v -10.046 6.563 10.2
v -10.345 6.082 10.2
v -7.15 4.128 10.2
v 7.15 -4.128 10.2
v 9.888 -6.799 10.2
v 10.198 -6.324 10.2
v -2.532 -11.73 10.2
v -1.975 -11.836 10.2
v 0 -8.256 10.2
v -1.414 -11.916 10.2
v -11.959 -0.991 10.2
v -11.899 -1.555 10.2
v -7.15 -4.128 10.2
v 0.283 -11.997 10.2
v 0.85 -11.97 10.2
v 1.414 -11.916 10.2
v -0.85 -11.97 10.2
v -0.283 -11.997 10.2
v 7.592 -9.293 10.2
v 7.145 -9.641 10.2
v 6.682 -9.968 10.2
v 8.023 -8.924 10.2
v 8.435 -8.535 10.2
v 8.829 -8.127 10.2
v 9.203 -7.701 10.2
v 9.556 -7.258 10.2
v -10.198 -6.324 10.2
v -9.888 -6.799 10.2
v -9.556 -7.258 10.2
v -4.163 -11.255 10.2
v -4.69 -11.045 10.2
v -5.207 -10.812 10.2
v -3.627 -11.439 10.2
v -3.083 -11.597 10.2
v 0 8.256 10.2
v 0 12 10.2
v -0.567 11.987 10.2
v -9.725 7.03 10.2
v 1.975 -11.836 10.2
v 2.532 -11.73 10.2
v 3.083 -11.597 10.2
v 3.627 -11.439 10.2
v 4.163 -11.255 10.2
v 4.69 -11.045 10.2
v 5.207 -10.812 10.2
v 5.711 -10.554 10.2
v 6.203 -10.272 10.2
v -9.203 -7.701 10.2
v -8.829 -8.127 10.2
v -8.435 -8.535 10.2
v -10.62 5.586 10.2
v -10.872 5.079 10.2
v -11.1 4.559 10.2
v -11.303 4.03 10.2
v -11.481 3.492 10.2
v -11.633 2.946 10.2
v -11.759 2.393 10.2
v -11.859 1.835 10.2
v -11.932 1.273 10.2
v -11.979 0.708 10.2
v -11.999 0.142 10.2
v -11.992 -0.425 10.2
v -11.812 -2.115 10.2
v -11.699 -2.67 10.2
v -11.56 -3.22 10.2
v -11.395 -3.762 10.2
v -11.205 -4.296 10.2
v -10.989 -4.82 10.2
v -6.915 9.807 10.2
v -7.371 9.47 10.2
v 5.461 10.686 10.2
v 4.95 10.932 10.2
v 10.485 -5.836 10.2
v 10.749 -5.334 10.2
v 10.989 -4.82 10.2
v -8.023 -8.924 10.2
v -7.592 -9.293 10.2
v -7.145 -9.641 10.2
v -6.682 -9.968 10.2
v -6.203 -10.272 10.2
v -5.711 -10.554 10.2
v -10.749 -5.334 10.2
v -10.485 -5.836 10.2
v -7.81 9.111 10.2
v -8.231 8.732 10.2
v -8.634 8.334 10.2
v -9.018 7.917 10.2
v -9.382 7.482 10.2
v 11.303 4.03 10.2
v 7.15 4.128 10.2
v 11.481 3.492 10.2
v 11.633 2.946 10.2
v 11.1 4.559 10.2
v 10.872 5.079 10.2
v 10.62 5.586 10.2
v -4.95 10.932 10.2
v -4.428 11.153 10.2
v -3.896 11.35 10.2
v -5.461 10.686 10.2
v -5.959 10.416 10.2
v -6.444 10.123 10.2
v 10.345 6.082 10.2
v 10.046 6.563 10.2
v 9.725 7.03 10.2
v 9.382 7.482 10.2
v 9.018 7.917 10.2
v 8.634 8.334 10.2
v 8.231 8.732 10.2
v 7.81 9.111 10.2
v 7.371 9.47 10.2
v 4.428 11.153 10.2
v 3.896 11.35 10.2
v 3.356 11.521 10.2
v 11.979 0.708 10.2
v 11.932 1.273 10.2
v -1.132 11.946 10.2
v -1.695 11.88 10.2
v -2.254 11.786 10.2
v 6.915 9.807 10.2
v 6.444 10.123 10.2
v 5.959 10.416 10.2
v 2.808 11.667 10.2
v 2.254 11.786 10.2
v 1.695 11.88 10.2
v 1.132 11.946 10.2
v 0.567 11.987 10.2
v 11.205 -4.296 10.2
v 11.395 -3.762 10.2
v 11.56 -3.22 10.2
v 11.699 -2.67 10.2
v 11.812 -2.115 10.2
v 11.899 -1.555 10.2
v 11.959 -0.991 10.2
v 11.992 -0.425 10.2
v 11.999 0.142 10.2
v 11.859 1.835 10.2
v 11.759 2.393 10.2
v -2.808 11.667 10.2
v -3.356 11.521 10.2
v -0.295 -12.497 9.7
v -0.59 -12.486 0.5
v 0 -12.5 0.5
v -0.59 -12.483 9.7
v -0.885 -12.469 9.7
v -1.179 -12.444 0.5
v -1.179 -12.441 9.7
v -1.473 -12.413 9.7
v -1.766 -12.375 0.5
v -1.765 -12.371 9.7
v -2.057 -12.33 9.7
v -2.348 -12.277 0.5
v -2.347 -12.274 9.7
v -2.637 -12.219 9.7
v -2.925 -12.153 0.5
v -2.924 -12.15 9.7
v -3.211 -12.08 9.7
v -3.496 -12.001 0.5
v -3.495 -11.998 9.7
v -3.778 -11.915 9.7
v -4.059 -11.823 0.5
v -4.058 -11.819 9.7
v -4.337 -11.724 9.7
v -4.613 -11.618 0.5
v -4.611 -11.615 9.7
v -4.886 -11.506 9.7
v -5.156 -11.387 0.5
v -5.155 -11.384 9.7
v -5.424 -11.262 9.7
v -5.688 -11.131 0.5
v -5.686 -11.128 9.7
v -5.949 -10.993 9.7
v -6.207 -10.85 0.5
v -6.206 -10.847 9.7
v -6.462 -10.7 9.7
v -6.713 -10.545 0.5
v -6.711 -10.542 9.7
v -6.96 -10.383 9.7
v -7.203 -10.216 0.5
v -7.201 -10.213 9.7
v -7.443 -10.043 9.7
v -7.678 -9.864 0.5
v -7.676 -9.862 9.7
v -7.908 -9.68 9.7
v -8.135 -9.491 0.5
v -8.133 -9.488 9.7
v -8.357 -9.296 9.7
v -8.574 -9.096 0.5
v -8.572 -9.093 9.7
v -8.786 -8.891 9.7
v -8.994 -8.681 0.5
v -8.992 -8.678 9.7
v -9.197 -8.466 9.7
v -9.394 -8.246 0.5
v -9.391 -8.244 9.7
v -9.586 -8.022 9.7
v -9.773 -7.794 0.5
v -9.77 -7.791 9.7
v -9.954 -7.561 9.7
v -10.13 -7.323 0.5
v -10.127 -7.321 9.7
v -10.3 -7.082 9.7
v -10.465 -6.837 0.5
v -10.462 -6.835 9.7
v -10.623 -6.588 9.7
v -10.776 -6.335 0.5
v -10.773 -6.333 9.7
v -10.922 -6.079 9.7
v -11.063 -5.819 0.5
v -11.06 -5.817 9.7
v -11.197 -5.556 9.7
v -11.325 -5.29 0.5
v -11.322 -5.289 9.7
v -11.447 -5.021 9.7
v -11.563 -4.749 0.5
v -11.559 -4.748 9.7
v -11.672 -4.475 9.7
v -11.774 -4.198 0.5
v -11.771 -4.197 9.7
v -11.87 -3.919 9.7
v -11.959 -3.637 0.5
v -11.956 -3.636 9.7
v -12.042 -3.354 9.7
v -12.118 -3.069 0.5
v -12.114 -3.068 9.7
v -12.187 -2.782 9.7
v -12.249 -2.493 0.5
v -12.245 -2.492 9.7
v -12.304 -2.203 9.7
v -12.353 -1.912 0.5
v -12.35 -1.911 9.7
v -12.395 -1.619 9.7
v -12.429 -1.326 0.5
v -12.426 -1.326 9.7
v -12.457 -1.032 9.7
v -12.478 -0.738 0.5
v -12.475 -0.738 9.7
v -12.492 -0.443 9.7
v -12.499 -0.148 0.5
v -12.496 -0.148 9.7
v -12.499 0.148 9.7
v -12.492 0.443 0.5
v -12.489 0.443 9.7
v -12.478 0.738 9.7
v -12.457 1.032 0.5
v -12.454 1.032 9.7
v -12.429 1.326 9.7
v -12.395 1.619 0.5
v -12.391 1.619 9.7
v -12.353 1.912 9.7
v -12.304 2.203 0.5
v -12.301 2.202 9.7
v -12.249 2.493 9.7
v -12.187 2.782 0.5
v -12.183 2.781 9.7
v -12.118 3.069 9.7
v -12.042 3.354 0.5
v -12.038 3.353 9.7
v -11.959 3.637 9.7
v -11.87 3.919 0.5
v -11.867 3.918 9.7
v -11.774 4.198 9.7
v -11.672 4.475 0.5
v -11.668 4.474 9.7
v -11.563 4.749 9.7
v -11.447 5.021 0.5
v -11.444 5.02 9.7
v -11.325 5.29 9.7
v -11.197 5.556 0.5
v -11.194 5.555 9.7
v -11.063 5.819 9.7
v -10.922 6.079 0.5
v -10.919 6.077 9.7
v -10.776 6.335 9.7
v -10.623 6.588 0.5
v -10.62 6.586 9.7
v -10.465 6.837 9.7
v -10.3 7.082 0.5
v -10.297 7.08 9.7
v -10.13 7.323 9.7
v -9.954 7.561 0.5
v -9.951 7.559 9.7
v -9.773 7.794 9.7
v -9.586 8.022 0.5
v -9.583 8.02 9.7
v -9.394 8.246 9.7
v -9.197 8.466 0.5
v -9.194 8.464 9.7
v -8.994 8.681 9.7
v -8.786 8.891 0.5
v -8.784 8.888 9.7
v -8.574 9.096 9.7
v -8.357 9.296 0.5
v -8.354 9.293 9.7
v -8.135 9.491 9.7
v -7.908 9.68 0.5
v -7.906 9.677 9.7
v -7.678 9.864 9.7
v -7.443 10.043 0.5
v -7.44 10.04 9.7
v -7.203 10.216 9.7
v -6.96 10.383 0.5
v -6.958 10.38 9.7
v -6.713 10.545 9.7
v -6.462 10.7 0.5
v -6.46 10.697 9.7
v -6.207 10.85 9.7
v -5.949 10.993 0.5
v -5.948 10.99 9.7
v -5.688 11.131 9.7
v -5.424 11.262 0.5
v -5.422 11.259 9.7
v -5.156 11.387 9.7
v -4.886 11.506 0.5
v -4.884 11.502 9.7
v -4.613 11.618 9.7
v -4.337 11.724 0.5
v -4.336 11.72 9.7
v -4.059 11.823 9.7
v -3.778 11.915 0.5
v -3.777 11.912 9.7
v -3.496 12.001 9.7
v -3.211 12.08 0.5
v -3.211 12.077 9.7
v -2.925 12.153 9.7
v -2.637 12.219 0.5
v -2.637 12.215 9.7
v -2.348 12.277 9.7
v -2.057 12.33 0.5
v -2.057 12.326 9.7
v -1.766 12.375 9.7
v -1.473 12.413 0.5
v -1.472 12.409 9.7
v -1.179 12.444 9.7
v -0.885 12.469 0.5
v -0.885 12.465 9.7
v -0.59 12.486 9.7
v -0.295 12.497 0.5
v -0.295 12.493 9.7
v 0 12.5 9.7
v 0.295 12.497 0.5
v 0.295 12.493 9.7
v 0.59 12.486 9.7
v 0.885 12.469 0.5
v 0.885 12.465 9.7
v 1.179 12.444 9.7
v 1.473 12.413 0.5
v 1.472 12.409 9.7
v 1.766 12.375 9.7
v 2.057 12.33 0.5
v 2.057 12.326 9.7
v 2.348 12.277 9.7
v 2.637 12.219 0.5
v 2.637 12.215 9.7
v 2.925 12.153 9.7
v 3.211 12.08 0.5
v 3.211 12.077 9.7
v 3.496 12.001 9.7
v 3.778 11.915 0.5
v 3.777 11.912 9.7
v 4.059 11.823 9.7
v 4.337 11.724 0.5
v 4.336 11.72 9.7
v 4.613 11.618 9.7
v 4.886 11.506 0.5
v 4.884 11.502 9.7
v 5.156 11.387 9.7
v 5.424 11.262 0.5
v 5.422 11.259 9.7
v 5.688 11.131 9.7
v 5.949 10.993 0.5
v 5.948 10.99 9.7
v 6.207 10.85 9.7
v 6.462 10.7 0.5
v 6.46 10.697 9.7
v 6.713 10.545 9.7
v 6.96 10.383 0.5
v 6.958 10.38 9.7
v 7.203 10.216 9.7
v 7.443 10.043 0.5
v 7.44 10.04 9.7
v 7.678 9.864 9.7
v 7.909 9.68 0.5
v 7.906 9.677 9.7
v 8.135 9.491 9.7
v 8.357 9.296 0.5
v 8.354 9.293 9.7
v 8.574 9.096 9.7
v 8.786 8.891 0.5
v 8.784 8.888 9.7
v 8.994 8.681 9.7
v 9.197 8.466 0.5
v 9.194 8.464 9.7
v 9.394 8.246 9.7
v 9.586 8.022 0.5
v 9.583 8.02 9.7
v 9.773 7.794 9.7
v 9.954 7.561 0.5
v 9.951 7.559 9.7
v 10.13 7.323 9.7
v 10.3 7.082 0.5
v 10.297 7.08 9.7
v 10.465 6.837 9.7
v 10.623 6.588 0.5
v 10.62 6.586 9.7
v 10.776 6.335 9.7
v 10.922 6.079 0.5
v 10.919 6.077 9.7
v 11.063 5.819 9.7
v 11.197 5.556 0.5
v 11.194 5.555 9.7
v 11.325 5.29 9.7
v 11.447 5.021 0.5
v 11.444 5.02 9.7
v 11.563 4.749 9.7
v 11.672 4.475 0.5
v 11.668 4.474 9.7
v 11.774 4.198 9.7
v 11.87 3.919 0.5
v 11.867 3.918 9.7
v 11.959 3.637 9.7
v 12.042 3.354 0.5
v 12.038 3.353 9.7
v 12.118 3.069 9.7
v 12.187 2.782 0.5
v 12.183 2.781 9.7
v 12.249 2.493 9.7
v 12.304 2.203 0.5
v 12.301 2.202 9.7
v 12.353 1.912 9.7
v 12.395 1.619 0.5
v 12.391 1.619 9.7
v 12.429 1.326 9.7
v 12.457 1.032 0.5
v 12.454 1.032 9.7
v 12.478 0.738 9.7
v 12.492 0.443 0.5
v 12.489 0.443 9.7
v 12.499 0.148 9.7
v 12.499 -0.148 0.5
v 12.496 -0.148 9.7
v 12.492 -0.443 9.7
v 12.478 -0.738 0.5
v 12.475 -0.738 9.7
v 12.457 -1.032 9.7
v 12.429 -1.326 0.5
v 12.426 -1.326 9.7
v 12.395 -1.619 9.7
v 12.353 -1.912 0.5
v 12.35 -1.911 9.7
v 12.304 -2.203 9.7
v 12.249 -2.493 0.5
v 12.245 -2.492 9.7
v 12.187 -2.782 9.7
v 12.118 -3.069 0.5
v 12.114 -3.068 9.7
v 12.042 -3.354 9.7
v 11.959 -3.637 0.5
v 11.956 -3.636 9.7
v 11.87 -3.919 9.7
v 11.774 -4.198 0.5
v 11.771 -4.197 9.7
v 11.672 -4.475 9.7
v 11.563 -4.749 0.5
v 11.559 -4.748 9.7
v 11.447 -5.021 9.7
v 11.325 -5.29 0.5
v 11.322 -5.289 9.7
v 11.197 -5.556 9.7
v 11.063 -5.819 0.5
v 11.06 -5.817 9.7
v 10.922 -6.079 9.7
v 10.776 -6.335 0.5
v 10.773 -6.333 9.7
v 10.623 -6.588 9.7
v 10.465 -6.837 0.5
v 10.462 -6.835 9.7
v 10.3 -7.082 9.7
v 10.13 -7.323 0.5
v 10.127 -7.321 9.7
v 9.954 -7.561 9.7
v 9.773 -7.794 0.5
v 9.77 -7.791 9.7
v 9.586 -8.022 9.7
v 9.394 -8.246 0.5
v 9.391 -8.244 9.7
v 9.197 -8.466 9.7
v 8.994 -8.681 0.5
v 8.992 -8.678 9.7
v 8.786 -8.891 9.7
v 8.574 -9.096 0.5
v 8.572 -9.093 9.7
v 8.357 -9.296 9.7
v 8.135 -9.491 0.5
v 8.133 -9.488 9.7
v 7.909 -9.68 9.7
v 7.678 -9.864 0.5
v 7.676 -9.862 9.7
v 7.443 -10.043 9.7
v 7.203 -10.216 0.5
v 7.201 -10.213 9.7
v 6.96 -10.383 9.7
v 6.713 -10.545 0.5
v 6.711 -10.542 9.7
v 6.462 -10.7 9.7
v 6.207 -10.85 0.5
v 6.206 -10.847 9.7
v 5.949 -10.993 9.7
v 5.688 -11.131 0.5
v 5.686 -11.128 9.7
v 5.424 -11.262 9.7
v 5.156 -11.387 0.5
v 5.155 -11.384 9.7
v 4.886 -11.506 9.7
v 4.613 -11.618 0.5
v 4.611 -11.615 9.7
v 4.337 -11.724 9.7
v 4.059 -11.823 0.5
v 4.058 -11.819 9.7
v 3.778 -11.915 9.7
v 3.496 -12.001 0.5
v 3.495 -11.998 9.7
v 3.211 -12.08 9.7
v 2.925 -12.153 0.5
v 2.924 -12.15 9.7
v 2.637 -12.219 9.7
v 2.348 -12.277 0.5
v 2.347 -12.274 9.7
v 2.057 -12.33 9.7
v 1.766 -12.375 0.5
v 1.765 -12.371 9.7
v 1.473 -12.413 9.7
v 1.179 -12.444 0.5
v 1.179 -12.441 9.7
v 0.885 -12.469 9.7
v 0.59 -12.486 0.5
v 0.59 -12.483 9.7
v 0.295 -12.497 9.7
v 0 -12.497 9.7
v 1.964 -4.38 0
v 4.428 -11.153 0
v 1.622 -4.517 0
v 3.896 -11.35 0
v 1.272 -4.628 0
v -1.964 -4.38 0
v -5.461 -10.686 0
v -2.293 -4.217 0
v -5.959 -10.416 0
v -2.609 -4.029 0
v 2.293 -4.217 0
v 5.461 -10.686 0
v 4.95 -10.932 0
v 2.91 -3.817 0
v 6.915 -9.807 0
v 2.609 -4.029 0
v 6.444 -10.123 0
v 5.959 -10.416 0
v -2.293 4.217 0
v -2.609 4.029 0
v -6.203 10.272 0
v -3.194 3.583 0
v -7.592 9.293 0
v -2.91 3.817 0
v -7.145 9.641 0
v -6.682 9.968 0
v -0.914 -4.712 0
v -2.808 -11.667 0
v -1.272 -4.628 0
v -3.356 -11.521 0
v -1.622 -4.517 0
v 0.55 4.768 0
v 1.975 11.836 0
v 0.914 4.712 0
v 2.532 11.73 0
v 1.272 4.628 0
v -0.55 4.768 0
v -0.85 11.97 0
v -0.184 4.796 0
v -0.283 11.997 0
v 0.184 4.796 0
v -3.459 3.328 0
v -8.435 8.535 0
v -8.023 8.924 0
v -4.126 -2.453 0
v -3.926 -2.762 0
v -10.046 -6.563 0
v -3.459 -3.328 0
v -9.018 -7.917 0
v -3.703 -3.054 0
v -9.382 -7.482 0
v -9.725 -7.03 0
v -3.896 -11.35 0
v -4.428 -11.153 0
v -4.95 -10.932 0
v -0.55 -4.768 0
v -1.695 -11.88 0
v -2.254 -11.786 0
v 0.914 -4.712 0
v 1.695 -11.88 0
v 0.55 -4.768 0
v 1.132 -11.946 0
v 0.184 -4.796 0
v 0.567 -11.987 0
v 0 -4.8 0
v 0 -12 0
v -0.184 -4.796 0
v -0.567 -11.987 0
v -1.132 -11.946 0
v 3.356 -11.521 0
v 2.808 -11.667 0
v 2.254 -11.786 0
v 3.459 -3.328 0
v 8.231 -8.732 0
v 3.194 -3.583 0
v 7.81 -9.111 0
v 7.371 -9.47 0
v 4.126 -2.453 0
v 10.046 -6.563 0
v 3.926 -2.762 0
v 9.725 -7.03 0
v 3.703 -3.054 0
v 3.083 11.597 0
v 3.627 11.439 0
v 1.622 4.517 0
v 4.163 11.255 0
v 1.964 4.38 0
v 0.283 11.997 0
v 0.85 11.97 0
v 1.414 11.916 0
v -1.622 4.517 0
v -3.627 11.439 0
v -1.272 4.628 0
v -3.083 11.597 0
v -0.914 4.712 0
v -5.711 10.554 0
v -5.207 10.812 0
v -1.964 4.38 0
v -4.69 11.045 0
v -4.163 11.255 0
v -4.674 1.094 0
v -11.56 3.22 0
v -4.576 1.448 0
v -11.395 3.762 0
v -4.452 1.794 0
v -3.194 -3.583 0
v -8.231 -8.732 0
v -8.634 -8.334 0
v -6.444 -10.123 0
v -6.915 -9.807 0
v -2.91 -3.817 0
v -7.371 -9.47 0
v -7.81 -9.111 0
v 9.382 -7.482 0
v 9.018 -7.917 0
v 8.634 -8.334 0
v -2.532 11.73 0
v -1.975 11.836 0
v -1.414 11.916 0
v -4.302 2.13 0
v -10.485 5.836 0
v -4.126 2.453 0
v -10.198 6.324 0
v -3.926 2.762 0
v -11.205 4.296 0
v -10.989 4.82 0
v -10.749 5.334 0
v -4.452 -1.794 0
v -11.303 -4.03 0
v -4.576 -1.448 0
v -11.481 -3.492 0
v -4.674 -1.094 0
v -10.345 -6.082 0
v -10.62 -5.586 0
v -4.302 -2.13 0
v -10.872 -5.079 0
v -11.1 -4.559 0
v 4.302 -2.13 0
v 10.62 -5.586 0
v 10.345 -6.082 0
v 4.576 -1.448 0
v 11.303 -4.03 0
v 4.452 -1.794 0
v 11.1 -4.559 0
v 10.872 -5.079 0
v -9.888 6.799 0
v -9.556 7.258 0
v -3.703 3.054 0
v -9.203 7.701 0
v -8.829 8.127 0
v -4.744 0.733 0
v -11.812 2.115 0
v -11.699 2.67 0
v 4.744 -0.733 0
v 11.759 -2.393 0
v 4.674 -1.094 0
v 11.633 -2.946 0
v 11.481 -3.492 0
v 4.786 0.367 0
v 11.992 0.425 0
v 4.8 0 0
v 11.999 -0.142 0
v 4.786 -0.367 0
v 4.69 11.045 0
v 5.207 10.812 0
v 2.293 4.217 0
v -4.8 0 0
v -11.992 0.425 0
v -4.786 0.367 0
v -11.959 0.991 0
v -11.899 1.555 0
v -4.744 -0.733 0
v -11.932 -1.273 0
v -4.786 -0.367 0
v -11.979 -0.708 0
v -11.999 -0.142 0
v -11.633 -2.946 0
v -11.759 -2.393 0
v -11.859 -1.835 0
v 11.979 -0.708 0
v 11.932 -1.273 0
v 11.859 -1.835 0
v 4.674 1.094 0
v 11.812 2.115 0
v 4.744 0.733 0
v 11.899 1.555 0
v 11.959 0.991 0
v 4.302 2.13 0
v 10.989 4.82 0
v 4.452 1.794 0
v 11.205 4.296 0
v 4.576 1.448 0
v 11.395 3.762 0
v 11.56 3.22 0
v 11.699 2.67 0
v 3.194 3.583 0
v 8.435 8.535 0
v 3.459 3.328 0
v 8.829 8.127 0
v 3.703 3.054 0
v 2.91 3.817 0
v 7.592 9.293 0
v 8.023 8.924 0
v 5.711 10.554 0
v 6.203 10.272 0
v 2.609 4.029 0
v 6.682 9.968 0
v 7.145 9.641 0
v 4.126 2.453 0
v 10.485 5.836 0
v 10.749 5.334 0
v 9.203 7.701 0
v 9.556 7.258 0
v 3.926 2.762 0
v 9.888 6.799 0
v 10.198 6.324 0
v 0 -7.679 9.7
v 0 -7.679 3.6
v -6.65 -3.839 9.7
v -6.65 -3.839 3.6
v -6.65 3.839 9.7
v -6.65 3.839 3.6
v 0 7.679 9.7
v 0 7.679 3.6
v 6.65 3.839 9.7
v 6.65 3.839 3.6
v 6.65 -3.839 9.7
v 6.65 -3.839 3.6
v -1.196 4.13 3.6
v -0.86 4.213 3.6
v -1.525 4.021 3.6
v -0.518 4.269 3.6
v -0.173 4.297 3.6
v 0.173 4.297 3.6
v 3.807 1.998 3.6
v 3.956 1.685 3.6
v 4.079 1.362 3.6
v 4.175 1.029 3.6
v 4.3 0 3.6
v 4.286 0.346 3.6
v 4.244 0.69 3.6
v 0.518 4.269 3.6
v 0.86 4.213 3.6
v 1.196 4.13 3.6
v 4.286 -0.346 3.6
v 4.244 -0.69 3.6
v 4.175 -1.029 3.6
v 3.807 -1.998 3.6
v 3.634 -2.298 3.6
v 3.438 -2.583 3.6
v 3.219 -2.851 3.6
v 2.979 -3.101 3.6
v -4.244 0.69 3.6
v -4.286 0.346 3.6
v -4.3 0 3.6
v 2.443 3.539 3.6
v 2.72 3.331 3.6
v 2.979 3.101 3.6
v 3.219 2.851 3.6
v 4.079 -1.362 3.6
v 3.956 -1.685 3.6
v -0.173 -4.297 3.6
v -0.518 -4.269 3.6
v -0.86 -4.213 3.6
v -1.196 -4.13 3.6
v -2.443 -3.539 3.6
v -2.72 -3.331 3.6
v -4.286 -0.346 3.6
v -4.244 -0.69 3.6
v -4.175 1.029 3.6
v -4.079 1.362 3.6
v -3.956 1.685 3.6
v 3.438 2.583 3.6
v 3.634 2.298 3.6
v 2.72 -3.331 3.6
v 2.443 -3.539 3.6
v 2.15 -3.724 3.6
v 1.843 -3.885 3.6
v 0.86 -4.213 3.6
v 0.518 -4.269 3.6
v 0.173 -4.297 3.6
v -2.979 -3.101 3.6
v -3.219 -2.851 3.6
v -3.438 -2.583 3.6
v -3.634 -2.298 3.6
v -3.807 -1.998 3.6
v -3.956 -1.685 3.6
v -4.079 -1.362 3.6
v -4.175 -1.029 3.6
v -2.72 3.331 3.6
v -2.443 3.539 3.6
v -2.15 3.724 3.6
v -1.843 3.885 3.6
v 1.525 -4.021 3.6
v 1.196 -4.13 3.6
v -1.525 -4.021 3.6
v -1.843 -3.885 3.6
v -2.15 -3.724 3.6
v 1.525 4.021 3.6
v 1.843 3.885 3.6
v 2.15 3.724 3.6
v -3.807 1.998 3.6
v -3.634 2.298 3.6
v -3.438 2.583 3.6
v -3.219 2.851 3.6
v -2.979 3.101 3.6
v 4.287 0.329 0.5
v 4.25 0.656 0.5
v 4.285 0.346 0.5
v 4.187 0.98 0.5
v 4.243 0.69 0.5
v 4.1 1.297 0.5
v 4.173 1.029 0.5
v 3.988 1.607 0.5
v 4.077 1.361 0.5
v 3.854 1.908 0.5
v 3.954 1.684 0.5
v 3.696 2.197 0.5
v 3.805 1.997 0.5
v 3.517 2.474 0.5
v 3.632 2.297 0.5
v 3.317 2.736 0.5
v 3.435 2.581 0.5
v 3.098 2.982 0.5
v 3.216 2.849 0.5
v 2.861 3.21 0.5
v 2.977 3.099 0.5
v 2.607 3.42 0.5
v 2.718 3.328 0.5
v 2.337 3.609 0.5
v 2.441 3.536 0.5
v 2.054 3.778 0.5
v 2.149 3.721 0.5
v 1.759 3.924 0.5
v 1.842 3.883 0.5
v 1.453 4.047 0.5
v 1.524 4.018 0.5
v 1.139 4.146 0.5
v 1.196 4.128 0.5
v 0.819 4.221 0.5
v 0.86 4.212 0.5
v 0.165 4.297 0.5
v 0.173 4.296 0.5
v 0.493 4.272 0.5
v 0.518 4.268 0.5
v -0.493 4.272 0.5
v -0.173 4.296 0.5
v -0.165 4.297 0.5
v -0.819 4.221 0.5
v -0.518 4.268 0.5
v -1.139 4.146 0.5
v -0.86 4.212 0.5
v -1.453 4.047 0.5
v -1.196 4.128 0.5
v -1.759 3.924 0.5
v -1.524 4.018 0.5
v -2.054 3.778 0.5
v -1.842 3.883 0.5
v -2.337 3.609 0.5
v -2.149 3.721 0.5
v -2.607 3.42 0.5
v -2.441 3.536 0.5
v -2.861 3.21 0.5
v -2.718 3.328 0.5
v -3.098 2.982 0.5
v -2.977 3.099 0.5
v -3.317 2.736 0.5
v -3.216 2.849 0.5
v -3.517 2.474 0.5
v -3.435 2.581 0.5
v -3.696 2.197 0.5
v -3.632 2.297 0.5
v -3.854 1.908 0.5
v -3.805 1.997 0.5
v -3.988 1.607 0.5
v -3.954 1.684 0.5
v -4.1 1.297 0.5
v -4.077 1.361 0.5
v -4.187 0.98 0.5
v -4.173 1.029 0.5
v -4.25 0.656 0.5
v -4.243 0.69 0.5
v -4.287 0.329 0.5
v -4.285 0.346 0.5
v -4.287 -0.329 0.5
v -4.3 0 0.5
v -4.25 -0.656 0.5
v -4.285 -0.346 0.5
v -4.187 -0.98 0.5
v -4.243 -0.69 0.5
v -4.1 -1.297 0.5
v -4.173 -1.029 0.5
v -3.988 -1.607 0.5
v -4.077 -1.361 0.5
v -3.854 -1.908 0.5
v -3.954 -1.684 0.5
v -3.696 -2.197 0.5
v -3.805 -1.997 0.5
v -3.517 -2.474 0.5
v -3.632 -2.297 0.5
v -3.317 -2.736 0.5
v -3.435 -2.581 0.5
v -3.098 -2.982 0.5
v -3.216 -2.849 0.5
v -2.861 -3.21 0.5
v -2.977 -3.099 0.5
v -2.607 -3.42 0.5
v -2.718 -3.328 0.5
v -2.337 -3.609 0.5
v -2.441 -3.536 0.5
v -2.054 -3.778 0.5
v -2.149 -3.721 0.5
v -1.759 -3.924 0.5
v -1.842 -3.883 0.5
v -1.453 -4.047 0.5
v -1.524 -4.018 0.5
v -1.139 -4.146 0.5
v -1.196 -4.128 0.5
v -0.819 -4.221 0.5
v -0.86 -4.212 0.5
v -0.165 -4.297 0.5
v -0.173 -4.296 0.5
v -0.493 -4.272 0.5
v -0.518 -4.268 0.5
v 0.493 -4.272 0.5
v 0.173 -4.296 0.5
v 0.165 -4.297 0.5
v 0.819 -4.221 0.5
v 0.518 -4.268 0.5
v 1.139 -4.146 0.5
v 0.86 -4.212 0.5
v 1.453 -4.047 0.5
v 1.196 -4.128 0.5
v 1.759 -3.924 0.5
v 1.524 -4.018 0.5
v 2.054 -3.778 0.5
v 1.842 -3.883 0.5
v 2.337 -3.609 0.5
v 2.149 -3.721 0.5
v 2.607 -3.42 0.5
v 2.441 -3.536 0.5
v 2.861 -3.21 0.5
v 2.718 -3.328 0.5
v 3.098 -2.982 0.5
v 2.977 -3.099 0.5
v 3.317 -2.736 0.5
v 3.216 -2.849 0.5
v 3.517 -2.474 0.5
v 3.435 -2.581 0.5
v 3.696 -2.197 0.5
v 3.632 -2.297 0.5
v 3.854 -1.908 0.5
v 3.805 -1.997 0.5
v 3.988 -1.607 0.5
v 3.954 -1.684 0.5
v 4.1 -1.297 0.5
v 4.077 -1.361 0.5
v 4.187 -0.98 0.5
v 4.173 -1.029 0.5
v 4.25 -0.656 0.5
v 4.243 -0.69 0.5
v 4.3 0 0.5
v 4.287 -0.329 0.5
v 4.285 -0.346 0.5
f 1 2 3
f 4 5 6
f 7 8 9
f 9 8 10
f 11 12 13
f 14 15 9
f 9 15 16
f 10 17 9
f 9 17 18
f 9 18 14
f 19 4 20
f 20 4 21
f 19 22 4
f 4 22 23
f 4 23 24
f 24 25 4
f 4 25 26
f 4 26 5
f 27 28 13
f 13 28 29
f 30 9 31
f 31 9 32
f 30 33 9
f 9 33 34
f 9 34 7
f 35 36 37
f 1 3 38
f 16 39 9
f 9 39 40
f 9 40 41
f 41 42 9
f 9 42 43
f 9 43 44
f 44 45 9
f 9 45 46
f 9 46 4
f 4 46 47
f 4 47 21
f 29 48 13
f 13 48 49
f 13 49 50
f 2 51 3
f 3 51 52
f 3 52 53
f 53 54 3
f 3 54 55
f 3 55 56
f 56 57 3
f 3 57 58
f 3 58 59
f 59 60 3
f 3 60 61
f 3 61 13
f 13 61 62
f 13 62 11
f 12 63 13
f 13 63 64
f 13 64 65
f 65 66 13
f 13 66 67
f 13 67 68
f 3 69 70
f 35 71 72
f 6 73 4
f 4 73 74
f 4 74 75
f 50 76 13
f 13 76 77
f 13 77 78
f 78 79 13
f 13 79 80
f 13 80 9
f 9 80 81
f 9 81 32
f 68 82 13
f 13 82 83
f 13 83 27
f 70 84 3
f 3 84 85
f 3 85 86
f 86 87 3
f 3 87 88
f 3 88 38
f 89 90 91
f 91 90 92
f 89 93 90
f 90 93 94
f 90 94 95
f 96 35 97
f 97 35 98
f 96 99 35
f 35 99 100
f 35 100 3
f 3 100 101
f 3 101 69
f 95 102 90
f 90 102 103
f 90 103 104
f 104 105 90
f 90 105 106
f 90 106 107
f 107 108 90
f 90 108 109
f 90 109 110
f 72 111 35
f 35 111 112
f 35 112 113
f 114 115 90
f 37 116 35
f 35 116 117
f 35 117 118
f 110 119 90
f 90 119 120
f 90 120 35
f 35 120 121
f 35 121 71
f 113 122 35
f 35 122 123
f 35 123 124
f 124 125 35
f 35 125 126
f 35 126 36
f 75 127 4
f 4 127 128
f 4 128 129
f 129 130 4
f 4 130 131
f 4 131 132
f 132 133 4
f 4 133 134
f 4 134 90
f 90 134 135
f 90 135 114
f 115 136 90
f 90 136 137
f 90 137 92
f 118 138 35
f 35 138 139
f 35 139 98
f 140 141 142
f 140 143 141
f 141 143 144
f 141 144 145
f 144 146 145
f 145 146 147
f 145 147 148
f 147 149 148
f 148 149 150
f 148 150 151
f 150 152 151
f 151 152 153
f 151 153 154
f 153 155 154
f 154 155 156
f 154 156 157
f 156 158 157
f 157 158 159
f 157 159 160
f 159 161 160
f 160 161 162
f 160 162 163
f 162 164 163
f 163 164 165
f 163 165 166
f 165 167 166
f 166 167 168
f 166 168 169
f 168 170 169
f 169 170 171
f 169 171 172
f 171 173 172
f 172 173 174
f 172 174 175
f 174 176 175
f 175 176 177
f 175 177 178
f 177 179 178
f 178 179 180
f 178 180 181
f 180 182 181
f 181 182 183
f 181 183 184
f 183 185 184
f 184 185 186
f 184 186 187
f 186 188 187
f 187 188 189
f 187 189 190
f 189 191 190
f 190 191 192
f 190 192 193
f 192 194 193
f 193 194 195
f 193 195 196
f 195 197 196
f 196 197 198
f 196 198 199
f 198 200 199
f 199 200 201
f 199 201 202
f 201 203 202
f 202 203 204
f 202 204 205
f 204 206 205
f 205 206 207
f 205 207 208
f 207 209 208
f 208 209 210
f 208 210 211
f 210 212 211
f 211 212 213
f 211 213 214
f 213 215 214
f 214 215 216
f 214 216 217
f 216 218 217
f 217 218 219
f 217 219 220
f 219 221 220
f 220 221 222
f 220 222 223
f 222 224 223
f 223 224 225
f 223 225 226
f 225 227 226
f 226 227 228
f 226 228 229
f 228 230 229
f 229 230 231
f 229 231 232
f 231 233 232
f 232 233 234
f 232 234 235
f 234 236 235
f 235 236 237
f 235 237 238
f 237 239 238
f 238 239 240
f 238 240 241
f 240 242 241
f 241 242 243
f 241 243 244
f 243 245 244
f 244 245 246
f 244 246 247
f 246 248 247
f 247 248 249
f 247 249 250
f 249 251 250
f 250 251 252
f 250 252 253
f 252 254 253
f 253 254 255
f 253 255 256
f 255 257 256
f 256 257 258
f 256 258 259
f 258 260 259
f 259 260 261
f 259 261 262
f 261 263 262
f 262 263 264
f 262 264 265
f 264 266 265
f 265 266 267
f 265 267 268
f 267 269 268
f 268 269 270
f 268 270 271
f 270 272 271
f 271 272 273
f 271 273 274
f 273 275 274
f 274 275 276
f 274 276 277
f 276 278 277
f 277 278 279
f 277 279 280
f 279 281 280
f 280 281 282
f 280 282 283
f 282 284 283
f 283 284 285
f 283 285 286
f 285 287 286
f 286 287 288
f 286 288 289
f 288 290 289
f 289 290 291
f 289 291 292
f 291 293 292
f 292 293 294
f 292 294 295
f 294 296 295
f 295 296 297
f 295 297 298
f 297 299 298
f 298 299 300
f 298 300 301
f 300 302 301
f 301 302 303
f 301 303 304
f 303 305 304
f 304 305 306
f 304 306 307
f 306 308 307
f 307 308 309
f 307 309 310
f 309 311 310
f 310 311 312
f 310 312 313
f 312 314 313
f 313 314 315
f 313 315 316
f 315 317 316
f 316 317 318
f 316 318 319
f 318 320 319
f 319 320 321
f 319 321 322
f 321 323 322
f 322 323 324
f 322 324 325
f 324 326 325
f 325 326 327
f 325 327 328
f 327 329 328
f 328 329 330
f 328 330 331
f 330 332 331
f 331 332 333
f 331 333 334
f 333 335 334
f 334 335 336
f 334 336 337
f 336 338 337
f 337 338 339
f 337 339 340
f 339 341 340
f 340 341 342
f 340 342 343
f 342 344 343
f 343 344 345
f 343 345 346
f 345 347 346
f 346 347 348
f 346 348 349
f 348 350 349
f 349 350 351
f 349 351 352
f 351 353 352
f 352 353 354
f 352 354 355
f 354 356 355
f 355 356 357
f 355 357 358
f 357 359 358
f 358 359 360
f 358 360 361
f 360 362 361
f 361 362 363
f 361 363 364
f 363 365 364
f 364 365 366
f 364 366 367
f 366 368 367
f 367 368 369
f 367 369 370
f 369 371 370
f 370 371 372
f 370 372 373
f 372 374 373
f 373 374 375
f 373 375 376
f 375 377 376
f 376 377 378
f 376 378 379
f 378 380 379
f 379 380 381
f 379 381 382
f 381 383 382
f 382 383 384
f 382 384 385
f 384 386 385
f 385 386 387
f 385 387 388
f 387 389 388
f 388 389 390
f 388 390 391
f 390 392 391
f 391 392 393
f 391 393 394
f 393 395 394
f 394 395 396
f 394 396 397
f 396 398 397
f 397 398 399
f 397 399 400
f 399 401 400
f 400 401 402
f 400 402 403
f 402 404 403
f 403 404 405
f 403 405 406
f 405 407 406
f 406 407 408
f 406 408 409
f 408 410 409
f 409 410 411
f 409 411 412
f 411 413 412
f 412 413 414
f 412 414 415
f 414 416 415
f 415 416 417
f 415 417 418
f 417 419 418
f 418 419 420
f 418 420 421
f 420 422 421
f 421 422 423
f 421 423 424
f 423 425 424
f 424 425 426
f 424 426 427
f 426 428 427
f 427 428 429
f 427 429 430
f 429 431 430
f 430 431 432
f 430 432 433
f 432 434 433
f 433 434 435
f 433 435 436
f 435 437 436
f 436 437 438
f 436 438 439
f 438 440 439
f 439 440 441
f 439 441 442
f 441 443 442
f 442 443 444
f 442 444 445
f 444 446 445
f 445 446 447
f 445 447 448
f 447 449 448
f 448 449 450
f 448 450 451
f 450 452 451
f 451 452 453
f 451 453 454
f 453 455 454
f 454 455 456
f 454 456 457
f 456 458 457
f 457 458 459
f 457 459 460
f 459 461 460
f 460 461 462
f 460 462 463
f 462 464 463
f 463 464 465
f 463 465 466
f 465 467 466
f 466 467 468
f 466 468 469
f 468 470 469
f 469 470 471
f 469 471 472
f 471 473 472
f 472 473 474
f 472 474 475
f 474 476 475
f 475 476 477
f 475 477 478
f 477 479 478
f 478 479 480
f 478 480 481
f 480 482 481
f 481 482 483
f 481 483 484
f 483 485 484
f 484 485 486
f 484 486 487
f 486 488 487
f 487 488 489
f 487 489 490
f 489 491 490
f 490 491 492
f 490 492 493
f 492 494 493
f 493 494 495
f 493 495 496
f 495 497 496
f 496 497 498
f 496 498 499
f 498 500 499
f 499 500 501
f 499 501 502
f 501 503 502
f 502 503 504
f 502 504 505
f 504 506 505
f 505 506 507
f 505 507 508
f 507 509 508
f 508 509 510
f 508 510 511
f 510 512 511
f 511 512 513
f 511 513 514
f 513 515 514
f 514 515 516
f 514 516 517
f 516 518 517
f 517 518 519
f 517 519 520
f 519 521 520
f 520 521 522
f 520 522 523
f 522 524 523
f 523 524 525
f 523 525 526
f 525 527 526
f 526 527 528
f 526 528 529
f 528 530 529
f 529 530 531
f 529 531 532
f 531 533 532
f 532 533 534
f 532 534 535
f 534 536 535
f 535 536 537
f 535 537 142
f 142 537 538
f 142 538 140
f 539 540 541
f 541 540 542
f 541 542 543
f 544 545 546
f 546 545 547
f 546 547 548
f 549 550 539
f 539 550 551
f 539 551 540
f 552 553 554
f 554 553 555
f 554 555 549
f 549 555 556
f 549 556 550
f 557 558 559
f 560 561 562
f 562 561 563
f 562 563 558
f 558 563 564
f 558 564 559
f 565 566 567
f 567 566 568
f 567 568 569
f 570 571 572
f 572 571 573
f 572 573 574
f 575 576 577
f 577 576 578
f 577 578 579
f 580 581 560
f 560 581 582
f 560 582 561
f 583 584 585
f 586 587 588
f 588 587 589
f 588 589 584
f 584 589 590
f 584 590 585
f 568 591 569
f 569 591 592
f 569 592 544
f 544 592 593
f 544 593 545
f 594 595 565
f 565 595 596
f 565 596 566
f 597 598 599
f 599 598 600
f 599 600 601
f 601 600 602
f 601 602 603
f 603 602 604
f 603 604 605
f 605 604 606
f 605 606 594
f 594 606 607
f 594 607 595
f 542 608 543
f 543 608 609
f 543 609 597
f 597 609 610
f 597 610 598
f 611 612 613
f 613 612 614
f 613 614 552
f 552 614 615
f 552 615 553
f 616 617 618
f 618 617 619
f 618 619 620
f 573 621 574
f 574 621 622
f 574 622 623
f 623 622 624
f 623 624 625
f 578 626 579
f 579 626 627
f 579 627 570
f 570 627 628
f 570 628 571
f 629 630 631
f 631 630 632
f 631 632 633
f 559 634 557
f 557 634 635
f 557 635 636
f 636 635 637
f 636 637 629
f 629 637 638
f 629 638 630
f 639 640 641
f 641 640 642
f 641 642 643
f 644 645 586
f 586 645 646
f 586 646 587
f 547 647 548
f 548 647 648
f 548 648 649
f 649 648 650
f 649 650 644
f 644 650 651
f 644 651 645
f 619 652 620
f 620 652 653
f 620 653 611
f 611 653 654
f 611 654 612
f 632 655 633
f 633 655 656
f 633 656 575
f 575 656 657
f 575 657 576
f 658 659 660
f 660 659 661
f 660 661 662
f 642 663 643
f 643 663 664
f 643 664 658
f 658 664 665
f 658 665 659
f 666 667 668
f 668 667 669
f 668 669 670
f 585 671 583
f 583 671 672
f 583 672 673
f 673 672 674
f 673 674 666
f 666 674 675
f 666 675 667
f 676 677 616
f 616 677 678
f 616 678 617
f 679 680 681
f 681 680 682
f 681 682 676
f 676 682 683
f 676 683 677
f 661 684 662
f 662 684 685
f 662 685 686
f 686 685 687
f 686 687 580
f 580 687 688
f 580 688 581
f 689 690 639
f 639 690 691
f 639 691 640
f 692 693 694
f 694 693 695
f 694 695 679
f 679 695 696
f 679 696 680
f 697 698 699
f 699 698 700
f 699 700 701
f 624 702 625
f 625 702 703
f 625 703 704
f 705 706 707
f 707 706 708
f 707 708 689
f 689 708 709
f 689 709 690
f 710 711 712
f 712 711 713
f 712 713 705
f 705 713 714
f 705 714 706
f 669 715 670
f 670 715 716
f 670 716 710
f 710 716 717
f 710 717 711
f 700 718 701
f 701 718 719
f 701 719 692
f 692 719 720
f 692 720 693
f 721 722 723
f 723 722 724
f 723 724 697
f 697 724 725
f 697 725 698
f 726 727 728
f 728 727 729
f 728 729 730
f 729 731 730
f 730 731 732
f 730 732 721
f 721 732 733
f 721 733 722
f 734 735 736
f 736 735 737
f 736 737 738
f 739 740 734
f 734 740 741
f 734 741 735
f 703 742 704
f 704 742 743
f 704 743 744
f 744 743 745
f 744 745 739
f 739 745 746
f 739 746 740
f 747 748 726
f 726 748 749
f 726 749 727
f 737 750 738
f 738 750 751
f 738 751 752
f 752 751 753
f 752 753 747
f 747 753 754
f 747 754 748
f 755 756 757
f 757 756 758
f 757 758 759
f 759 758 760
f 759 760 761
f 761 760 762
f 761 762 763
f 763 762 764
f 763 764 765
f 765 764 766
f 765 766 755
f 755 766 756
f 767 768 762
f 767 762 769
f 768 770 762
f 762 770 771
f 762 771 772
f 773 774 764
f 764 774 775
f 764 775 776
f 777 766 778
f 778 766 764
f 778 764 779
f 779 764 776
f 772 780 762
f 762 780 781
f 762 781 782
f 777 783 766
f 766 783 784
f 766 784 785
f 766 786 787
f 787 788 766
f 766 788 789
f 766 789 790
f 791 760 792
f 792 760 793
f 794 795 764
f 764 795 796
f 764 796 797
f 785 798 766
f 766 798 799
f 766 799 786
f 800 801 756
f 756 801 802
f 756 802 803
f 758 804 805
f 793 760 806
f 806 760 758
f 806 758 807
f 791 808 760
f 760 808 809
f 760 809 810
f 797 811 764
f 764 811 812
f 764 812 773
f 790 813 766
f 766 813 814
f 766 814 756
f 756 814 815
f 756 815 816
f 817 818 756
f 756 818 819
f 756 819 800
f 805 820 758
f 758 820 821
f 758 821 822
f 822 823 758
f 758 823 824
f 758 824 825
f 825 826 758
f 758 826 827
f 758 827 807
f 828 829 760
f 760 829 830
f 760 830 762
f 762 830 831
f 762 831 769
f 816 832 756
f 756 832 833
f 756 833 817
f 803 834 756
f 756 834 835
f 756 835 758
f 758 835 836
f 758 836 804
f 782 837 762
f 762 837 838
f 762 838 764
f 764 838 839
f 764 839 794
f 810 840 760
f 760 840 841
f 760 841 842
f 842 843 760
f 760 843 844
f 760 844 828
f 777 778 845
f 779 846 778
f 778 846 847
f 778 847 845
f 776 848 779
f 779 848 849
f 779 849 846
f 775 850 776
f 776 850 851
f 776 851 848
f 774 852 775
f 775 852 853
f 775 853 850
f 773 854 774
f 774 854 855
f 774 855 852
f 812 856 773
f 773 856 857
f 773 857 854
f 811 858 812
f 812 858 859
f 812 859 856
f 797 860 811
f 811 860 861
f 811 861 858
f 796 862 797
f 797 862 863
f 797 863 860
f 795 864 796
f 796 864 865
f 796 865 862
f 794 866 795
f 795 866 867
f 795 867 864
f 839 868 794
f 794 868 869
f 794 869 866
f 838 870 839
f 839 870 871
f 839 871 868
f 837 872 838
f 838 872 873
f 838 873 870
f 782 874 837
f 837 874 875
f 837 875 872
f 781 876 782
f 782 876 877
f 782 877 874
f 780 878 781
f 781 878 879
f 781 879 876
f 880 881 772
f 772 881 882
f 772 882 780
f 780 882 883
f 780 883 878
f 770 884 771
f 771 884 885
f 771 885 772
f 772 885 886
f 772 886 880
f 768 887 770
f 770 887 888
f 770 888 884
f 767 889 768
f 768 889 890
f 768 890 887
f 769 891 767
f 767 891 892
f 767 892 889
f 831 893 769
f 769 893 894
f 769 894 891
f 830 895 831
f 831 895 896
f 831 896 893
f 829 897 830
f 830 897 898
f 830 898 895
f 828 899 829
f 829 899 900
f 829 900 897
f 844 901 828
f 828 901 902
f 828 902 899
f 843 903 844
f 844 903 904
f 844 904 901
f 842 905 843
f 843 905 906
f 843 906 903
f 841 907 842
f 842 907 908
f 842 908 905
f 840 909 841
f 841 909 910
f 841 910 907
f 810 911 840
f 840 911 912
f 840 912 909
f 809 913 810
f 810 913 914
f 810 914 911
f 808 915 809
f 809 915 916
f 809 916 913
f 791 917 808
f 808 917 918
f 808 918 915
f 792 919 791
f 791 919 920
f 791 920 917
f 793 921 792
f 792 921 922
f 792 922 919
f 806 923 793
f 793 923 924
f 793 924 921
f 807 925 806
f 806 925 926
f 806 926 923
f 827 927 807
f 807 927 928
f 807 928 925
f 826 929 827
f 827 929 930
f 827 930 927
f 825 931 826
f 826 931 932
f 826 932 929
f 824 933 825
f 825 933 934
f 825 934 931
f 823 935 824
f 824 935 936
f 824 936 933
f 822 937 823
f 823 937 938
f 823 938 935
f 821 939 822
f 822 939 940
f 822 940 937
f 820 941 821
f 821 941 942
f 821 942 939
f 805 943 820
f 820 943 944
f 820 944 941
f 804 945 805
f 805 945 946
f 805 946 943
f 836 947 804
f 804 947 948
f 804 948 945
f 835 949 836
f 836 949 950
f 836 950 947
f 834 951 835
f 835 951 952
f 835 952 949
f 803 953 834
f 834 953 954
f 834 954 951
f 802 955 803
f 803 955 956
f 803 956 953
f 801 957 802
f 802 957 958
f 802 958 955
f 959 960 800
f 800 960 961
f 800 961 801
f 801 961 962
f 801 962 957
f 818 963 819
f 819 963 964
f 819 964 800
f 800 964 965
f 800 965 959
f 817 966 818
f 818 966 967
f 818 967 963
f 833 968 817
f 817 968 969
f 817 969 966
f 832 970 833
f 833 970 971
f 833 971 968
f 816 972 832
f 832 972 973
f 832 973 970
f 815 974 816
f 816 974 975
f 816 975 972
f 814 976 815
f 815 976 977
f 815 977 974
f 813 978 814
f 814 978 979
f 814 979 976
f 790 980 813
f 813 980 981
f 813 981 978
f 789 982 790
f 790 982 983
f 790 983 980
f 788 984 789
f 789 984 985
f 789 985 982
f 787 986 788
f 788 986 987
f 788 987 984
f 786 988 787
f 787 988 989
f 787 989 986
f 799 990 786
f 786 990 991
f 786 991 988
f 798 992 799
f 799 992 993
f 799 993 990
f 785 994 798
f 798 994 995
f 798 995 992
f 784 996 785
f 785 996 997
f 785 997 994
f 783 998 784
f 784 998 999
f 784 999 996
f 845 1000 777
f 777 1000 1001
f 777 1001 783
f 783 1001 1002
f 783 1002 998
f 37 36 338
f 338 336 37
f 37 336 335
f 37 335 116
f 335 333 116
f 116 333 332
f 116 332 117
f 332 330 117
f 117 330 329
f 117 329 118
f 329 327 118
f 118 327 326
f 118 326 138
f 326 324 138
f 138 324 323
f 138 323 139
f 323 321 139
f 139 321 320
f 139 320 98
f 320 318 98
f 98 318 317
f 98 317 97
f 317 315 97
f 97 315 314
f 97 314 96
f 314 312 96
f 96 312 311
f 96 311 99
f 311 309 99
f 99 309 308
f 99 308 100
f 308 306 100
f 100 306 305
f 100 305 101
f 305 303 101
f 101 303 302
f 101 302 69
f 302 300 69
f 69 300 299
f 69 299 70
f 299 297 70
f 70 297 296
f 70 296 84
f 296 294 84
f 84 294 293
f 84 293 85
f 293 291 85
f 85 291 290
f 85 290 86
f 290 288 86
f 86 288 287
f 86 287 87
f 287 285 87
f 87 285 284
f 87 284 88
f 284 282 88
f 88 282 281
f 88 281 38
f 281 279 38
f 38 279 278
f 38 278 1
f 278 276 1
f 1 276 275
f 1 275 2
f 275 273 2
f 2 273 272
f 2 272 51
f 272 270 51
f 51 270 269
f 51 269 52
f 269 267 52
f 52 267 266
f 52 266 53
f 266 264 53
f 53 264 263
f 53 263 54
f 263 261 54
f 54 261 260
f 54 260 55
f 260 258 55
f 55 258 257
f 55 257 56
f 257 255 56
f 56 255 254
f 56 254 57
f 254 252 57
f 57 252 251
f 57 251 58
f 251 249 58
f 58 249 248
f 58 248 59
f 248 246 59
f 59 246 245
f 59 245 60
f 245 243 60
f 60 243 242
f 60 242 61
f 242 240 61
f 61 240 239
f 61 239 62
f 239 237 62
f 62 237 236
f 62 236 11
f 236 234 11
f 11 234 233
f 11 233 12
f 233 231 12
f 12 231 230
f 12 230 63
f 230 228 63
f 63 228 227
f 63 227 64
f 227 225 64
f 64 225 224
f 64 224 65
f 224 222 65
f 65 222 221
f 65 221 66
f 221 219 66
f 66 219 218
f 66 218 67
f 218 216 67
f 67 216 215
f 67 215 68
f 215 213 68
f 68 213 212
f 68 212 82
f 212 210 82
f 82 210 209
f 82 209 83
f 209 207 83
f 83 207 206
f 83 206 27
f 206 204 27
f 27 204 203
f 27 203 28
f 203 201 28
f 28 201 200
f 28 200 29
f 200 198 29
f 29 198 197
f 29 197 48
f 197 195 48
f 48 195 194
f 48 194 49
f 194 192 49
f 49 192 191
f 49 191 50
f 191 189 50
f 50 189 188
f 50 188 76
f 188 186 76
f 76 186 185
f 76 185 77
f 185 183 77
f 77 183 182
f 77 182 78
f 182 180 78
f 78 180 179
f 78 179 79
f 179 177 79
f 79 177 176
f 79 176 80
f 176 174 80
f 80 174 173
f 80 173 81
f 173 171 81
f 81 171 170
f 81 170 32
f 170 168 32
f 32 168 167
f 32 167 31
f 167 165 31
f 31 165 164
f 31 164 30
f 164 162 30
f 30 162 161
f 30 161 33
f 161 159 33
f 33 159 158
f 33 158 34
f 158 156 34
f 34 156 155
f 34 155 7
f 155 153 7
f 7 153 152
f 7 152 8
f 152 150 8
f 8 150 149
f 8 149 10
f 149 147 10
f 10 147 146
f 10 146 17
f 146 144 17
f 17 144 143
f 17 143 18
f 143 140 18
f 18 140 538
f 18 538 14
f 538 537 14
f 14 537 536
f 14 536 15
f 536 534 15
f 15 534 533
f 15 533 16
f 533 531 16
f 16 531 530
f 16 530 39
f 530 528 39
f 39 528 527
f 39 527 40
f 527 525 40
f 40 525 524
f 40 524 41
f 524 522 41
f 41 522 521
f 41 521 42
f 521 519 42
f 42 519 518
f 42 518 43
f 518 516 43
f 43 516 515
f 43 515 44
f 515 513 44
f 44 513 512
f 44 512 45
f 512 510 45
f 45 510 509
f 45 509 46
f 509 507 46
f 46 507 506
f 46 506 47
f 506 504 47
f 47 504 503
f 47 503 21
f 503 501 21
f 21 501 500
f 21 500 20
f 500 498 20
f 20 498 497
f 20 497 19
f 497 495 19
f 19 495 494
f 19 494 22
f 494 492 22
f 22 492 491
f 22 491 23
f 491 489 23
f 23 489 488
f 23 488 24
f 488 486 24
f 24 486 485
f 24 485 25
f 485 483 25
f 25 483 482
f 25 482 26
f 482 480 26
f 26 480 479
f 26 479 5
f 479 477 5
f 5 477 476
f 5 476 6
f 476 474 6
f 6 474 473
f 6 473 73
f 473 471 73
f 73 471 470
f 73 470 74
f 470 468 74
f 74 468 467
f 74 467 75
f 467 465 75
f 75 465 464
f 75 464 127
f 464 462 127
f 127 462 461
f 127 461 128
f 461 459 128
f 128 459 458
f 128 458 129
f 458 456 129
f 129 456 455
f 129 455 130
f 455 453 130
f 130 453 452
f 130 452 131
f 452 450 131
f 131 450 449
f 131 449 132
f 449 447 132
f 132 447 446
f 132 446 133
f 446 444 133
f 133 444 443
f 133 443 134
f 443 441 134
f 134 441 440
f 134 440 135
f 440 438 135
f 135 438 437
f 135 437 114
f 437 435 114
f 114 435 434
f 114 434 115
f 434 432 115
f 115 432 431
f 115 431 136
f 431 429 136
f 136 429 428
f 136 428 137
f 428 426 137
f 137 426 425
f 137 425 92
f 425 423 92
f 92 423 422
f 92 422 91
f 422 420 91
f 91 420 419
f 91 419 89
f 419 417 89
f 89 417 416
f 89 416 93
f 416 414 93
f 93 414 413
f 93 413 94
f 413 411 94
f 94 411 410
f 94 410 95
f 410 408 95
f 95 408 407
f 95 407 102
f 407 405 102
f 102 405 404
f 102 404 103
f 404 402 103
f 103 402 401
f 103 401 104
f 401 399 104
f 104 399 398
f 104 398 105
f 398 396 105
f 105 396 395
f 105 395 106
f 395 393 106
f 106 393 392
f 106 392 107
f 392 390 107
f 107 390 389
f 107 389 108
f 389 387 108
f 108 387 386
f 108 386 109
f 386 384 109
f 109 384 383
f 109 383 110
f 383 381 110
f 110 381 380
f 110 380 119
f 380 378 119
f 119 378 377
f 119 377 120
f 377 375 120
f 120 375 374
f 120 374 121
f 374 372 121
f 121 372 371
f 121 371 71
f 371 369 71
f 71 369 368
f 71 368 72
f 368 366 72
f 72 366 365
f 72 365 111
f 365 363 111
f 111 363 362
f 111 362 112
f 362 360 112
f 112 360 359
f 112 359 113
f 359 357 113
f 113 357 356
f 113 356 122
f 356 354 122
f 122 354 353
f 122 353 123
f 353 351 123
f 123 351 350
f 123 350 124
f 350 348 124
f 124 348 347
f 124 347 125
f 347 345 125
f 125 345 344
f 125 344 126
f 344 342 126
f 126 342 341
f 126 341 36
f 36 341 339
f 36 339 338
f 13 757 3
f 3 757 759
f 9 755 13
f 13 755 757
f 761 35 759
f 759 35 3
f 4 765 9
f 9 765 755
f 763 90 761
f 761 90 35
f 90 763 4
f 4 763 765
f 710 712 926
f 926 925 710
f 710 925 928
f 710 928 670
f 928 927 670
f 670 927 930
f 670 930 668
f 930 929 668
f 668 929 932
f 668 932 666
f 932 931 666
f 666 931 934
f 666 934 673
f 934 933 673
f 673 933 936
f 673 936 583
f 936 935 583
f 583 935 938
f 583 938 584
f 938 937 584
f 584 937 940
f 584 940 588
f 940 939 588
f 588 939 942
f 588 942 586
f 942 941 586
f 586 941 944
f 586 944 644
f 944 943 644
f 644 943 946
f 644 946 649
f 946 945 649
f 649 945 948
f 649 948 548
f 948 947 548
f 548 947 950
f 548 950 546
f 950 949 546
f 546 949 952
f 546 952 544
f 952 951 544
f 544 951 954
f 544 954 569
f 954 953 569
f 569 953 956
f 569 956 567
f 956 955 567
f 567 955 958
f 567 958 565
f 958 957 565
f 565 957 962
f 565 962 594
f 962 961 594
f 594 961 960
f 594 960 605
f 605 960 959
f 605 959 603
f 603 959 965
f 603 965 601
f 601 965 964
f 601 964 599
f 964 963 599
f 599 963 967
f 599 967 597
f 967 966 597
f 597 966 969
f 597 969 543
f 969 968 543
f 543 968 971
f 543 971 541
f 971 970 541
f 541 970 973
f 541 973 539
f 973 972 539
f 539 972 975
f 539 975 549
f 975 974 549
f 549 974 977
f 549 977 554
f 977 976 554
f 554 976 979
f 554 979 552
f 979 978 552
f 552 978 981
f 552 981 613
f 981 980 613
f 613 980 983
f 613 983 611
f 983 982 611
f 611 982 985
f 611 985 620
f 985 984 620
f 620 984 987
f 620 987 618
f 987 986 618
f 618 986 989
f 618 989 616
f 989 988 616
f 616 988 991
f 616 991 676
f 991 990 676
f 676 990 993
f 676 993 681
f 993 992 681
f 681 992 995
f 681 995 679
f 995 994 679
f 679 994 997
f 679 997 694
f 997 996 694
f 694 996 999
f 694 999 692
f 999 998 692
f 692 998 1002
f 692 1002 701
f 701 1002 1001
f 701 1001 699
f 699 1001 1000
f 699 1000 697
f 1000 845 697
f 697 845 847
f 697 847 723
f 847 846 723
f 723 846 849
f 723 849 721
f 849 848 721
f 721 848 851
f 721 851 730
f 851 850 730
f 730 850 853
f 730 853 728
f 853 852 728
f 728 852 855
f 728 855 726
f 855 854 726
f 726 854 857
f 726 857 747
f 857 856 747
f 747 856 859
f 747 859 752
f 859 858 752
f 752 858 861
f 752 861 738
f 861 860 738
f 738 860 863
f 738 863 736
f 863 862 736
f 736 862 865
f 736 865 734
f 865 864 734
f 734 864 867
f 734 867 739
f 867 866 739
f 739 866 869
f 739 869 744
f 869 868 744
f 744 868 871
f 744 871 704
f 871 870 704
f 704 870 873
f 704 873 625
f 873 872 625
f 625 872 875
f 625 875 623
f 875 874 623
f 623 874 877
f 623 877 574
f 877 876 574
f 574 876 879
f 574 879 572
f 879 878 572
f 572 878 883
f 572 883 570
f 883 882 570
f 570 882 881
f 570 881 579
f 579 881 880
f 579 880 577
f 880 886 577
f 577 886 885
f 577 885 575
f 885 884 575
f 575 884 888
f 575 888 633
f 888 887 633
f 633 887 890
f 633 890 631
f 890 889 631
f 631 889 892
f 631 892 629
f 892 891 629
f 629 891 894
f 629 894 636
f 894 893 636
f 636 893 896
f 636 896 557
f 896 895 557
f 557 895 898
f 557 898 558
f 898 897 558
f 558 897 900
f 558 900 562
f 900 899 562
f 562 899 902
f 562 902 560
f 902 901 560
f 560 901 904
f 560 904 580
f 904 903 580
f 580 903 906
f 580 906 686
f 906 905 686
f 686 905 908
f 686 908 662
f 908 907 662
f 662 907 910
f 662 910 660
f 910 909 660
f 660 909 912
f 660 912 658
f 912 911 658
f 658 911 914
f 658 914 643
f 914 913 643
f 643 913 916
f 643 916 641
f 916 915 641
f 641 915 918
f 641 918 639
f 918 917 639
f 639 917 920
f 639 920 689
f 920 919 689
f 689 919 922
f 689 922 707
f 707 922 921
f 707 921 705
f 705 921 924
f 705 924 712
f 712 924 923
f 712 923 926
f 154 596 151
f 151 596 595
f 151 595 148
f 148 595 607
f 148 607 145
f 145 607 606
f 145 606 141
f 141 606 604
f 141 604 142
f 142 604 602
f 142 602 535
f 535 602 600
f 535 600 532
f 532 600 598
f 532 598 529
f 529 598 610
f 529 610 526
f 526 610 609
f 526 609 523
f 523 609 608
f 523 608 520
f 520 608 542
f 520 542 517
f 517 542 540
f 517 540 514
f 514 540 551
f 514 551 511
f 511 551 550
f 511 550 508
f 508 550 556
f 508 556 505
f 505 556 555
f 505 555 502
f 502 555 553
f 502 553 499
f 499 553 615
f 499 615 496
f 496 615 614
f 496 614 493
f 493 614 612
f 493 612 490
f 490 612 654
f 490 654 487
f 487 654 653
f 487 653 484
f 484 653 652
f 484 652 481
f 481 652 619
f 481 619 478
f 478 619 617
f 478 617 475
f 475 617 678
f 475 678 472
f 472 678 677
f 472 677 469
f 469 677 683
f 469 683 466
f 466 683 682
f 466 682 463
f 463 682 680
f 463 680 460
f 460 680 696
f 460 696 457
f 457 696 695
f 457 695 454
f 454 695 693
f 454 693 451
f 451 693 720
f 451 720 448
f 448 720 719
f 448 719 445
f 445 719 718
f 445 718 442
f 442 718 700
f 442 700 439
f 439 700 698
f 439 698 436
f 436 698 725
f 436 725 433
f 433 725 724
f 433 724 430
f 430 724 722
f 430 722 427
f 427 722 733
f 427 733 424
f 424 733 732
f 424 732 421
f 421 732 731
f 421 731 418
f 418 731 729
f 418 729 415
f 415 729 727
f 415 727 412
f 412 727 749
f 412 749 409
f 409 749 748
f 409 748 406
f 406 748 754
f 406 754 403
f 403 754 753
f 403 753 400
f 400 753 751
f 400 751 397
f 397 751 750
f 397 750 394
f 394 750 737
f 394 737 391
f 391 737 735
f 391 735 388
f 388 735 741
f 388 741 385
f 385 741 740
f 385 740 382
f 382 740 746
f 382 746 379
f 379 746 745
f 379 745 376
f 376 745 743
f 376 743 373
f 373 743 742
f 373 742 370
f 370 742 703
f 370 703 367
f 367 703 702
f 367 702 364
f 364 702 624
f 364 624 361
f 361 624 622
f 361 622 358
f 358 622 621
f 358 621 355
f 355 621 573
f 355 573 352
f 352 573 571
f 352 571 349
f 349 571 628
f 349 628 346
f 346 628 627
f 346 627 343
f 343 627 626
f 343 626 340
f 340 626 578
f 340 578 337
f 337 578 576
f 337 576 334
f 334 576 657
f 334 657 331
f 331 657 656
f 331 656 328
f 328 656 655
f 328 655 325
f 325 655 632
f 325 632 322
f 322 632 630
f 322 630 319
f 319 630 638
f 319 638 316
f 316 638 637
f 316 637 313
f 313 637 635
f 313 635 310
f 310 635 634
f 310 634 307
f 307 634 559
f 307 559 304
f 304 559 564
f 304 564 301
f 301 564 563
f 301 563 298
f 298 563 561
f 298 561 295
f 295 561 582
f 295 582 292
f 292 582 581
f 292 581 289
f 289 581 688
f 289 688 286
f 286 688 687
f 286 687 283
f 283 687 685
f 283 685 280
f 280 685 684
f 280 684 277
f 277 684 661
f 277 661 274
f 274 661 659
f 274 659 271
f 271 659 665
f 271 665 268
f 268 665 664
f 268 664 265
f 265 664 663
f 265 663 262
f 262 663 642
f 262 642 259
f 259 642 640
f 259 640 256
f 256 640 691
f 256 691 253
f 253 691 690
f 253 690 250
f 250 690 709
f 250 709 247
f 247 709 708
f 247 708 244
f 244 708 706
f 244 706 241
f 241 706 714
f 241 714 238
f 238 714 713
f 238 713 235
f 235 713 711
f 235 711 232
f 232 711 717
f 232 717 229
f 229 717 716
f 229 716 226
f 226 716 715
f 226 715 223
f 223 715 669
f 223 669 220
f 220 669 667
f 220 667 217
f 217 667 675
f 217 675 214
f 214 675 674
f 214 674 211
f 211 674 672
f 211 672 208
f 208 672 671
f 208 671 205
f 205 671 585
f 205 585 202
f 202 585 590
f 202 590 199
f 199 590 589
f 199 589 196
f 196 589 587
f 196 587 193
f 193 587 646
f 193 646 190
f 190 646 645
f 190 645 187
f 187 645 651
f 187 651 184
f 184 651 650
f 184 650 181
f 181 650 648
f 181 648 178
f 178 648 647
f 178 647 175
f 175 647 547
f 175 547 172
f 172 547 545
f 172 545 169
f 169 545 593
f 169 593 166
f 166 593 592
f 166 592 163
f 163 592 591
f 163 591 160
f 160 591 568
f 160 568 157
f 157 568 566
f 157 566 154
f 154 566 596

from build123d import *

# Parameters (mm, degrees)
SKETCH4_W          = 10.2
SKETCH4_H          = 12.5
CUT_EXTRUDE1_DEPTH = 6.6
SKETCH6_R          = 4.3
CUT_EXTRUDE2_DEPTH = 19.869552194
CHAMFER2_SIZE      = 0.5


with BuildPart() as part:
    # Sketch4 → Revolve1 (revolve)
    with BuildSketch(Plane(origin=(0, 0, 0), x_dir=(0, 0, -1), z_dir=(1, 0, 0)), mode=Mode.PRIVATE) as revolve1_sk:
        with Locations((-5.1, 6.25)):
            Rectangle(SKETCH4_W, SKETCH4_H)
    revolve(revolve1_sk.sketch.rotate(Axis((0, 0, 10.2), (0, 0, -1)), 180), axis=Axis((0, 0, 10.2), (0, 0, -1)))

    # Sketch5 → Cut-Extrude1 (cut)
    with BuildSketch(Plane.XY.offset(10.2)):
        Polygon((0, -7.67875858), (6.65, -3.83937929), (6.65, 3.83937929), (0, 7.67875858), (-6.65, 3.83937929), (-6.65, -3.83937929), align=None)
    extrude(amount=-CUT_EXTRUDE1_DEPTH, mode=Mode.SUBTRACT)

    # Sketch6 → Cut-Extrude2 (cut, through all)
    with BuildSketch(Plane.XY.offset(3.6)):
        Circle(SKETCH6_R)
    extrude(amount=-CUT_EXTRUDE2_DEPTH, mode=Mode.SUBTRACT)

    # Chamfer2
    chamfer2_edges = [part.edges().sort_by_distance(p)[0] for p in [
        (-3.325, -5.759068935, 10.2),
        (3.325, -5.759068935, 10.2),
        (6.65, 0, 10.2),
        (3.325, 5.759068935, 10.2),
        (-3.325, 5.759068935, 10.2),
        (-6.65, 0, 10.2),
        (-4.3, 0, 0),
        (0, 12.5, 0),
        (0, 12.5, 10.2),
    ]]
    chamfer(chamfer2_edges, length=CHAMFER2_SIZE)


solid = part.part
